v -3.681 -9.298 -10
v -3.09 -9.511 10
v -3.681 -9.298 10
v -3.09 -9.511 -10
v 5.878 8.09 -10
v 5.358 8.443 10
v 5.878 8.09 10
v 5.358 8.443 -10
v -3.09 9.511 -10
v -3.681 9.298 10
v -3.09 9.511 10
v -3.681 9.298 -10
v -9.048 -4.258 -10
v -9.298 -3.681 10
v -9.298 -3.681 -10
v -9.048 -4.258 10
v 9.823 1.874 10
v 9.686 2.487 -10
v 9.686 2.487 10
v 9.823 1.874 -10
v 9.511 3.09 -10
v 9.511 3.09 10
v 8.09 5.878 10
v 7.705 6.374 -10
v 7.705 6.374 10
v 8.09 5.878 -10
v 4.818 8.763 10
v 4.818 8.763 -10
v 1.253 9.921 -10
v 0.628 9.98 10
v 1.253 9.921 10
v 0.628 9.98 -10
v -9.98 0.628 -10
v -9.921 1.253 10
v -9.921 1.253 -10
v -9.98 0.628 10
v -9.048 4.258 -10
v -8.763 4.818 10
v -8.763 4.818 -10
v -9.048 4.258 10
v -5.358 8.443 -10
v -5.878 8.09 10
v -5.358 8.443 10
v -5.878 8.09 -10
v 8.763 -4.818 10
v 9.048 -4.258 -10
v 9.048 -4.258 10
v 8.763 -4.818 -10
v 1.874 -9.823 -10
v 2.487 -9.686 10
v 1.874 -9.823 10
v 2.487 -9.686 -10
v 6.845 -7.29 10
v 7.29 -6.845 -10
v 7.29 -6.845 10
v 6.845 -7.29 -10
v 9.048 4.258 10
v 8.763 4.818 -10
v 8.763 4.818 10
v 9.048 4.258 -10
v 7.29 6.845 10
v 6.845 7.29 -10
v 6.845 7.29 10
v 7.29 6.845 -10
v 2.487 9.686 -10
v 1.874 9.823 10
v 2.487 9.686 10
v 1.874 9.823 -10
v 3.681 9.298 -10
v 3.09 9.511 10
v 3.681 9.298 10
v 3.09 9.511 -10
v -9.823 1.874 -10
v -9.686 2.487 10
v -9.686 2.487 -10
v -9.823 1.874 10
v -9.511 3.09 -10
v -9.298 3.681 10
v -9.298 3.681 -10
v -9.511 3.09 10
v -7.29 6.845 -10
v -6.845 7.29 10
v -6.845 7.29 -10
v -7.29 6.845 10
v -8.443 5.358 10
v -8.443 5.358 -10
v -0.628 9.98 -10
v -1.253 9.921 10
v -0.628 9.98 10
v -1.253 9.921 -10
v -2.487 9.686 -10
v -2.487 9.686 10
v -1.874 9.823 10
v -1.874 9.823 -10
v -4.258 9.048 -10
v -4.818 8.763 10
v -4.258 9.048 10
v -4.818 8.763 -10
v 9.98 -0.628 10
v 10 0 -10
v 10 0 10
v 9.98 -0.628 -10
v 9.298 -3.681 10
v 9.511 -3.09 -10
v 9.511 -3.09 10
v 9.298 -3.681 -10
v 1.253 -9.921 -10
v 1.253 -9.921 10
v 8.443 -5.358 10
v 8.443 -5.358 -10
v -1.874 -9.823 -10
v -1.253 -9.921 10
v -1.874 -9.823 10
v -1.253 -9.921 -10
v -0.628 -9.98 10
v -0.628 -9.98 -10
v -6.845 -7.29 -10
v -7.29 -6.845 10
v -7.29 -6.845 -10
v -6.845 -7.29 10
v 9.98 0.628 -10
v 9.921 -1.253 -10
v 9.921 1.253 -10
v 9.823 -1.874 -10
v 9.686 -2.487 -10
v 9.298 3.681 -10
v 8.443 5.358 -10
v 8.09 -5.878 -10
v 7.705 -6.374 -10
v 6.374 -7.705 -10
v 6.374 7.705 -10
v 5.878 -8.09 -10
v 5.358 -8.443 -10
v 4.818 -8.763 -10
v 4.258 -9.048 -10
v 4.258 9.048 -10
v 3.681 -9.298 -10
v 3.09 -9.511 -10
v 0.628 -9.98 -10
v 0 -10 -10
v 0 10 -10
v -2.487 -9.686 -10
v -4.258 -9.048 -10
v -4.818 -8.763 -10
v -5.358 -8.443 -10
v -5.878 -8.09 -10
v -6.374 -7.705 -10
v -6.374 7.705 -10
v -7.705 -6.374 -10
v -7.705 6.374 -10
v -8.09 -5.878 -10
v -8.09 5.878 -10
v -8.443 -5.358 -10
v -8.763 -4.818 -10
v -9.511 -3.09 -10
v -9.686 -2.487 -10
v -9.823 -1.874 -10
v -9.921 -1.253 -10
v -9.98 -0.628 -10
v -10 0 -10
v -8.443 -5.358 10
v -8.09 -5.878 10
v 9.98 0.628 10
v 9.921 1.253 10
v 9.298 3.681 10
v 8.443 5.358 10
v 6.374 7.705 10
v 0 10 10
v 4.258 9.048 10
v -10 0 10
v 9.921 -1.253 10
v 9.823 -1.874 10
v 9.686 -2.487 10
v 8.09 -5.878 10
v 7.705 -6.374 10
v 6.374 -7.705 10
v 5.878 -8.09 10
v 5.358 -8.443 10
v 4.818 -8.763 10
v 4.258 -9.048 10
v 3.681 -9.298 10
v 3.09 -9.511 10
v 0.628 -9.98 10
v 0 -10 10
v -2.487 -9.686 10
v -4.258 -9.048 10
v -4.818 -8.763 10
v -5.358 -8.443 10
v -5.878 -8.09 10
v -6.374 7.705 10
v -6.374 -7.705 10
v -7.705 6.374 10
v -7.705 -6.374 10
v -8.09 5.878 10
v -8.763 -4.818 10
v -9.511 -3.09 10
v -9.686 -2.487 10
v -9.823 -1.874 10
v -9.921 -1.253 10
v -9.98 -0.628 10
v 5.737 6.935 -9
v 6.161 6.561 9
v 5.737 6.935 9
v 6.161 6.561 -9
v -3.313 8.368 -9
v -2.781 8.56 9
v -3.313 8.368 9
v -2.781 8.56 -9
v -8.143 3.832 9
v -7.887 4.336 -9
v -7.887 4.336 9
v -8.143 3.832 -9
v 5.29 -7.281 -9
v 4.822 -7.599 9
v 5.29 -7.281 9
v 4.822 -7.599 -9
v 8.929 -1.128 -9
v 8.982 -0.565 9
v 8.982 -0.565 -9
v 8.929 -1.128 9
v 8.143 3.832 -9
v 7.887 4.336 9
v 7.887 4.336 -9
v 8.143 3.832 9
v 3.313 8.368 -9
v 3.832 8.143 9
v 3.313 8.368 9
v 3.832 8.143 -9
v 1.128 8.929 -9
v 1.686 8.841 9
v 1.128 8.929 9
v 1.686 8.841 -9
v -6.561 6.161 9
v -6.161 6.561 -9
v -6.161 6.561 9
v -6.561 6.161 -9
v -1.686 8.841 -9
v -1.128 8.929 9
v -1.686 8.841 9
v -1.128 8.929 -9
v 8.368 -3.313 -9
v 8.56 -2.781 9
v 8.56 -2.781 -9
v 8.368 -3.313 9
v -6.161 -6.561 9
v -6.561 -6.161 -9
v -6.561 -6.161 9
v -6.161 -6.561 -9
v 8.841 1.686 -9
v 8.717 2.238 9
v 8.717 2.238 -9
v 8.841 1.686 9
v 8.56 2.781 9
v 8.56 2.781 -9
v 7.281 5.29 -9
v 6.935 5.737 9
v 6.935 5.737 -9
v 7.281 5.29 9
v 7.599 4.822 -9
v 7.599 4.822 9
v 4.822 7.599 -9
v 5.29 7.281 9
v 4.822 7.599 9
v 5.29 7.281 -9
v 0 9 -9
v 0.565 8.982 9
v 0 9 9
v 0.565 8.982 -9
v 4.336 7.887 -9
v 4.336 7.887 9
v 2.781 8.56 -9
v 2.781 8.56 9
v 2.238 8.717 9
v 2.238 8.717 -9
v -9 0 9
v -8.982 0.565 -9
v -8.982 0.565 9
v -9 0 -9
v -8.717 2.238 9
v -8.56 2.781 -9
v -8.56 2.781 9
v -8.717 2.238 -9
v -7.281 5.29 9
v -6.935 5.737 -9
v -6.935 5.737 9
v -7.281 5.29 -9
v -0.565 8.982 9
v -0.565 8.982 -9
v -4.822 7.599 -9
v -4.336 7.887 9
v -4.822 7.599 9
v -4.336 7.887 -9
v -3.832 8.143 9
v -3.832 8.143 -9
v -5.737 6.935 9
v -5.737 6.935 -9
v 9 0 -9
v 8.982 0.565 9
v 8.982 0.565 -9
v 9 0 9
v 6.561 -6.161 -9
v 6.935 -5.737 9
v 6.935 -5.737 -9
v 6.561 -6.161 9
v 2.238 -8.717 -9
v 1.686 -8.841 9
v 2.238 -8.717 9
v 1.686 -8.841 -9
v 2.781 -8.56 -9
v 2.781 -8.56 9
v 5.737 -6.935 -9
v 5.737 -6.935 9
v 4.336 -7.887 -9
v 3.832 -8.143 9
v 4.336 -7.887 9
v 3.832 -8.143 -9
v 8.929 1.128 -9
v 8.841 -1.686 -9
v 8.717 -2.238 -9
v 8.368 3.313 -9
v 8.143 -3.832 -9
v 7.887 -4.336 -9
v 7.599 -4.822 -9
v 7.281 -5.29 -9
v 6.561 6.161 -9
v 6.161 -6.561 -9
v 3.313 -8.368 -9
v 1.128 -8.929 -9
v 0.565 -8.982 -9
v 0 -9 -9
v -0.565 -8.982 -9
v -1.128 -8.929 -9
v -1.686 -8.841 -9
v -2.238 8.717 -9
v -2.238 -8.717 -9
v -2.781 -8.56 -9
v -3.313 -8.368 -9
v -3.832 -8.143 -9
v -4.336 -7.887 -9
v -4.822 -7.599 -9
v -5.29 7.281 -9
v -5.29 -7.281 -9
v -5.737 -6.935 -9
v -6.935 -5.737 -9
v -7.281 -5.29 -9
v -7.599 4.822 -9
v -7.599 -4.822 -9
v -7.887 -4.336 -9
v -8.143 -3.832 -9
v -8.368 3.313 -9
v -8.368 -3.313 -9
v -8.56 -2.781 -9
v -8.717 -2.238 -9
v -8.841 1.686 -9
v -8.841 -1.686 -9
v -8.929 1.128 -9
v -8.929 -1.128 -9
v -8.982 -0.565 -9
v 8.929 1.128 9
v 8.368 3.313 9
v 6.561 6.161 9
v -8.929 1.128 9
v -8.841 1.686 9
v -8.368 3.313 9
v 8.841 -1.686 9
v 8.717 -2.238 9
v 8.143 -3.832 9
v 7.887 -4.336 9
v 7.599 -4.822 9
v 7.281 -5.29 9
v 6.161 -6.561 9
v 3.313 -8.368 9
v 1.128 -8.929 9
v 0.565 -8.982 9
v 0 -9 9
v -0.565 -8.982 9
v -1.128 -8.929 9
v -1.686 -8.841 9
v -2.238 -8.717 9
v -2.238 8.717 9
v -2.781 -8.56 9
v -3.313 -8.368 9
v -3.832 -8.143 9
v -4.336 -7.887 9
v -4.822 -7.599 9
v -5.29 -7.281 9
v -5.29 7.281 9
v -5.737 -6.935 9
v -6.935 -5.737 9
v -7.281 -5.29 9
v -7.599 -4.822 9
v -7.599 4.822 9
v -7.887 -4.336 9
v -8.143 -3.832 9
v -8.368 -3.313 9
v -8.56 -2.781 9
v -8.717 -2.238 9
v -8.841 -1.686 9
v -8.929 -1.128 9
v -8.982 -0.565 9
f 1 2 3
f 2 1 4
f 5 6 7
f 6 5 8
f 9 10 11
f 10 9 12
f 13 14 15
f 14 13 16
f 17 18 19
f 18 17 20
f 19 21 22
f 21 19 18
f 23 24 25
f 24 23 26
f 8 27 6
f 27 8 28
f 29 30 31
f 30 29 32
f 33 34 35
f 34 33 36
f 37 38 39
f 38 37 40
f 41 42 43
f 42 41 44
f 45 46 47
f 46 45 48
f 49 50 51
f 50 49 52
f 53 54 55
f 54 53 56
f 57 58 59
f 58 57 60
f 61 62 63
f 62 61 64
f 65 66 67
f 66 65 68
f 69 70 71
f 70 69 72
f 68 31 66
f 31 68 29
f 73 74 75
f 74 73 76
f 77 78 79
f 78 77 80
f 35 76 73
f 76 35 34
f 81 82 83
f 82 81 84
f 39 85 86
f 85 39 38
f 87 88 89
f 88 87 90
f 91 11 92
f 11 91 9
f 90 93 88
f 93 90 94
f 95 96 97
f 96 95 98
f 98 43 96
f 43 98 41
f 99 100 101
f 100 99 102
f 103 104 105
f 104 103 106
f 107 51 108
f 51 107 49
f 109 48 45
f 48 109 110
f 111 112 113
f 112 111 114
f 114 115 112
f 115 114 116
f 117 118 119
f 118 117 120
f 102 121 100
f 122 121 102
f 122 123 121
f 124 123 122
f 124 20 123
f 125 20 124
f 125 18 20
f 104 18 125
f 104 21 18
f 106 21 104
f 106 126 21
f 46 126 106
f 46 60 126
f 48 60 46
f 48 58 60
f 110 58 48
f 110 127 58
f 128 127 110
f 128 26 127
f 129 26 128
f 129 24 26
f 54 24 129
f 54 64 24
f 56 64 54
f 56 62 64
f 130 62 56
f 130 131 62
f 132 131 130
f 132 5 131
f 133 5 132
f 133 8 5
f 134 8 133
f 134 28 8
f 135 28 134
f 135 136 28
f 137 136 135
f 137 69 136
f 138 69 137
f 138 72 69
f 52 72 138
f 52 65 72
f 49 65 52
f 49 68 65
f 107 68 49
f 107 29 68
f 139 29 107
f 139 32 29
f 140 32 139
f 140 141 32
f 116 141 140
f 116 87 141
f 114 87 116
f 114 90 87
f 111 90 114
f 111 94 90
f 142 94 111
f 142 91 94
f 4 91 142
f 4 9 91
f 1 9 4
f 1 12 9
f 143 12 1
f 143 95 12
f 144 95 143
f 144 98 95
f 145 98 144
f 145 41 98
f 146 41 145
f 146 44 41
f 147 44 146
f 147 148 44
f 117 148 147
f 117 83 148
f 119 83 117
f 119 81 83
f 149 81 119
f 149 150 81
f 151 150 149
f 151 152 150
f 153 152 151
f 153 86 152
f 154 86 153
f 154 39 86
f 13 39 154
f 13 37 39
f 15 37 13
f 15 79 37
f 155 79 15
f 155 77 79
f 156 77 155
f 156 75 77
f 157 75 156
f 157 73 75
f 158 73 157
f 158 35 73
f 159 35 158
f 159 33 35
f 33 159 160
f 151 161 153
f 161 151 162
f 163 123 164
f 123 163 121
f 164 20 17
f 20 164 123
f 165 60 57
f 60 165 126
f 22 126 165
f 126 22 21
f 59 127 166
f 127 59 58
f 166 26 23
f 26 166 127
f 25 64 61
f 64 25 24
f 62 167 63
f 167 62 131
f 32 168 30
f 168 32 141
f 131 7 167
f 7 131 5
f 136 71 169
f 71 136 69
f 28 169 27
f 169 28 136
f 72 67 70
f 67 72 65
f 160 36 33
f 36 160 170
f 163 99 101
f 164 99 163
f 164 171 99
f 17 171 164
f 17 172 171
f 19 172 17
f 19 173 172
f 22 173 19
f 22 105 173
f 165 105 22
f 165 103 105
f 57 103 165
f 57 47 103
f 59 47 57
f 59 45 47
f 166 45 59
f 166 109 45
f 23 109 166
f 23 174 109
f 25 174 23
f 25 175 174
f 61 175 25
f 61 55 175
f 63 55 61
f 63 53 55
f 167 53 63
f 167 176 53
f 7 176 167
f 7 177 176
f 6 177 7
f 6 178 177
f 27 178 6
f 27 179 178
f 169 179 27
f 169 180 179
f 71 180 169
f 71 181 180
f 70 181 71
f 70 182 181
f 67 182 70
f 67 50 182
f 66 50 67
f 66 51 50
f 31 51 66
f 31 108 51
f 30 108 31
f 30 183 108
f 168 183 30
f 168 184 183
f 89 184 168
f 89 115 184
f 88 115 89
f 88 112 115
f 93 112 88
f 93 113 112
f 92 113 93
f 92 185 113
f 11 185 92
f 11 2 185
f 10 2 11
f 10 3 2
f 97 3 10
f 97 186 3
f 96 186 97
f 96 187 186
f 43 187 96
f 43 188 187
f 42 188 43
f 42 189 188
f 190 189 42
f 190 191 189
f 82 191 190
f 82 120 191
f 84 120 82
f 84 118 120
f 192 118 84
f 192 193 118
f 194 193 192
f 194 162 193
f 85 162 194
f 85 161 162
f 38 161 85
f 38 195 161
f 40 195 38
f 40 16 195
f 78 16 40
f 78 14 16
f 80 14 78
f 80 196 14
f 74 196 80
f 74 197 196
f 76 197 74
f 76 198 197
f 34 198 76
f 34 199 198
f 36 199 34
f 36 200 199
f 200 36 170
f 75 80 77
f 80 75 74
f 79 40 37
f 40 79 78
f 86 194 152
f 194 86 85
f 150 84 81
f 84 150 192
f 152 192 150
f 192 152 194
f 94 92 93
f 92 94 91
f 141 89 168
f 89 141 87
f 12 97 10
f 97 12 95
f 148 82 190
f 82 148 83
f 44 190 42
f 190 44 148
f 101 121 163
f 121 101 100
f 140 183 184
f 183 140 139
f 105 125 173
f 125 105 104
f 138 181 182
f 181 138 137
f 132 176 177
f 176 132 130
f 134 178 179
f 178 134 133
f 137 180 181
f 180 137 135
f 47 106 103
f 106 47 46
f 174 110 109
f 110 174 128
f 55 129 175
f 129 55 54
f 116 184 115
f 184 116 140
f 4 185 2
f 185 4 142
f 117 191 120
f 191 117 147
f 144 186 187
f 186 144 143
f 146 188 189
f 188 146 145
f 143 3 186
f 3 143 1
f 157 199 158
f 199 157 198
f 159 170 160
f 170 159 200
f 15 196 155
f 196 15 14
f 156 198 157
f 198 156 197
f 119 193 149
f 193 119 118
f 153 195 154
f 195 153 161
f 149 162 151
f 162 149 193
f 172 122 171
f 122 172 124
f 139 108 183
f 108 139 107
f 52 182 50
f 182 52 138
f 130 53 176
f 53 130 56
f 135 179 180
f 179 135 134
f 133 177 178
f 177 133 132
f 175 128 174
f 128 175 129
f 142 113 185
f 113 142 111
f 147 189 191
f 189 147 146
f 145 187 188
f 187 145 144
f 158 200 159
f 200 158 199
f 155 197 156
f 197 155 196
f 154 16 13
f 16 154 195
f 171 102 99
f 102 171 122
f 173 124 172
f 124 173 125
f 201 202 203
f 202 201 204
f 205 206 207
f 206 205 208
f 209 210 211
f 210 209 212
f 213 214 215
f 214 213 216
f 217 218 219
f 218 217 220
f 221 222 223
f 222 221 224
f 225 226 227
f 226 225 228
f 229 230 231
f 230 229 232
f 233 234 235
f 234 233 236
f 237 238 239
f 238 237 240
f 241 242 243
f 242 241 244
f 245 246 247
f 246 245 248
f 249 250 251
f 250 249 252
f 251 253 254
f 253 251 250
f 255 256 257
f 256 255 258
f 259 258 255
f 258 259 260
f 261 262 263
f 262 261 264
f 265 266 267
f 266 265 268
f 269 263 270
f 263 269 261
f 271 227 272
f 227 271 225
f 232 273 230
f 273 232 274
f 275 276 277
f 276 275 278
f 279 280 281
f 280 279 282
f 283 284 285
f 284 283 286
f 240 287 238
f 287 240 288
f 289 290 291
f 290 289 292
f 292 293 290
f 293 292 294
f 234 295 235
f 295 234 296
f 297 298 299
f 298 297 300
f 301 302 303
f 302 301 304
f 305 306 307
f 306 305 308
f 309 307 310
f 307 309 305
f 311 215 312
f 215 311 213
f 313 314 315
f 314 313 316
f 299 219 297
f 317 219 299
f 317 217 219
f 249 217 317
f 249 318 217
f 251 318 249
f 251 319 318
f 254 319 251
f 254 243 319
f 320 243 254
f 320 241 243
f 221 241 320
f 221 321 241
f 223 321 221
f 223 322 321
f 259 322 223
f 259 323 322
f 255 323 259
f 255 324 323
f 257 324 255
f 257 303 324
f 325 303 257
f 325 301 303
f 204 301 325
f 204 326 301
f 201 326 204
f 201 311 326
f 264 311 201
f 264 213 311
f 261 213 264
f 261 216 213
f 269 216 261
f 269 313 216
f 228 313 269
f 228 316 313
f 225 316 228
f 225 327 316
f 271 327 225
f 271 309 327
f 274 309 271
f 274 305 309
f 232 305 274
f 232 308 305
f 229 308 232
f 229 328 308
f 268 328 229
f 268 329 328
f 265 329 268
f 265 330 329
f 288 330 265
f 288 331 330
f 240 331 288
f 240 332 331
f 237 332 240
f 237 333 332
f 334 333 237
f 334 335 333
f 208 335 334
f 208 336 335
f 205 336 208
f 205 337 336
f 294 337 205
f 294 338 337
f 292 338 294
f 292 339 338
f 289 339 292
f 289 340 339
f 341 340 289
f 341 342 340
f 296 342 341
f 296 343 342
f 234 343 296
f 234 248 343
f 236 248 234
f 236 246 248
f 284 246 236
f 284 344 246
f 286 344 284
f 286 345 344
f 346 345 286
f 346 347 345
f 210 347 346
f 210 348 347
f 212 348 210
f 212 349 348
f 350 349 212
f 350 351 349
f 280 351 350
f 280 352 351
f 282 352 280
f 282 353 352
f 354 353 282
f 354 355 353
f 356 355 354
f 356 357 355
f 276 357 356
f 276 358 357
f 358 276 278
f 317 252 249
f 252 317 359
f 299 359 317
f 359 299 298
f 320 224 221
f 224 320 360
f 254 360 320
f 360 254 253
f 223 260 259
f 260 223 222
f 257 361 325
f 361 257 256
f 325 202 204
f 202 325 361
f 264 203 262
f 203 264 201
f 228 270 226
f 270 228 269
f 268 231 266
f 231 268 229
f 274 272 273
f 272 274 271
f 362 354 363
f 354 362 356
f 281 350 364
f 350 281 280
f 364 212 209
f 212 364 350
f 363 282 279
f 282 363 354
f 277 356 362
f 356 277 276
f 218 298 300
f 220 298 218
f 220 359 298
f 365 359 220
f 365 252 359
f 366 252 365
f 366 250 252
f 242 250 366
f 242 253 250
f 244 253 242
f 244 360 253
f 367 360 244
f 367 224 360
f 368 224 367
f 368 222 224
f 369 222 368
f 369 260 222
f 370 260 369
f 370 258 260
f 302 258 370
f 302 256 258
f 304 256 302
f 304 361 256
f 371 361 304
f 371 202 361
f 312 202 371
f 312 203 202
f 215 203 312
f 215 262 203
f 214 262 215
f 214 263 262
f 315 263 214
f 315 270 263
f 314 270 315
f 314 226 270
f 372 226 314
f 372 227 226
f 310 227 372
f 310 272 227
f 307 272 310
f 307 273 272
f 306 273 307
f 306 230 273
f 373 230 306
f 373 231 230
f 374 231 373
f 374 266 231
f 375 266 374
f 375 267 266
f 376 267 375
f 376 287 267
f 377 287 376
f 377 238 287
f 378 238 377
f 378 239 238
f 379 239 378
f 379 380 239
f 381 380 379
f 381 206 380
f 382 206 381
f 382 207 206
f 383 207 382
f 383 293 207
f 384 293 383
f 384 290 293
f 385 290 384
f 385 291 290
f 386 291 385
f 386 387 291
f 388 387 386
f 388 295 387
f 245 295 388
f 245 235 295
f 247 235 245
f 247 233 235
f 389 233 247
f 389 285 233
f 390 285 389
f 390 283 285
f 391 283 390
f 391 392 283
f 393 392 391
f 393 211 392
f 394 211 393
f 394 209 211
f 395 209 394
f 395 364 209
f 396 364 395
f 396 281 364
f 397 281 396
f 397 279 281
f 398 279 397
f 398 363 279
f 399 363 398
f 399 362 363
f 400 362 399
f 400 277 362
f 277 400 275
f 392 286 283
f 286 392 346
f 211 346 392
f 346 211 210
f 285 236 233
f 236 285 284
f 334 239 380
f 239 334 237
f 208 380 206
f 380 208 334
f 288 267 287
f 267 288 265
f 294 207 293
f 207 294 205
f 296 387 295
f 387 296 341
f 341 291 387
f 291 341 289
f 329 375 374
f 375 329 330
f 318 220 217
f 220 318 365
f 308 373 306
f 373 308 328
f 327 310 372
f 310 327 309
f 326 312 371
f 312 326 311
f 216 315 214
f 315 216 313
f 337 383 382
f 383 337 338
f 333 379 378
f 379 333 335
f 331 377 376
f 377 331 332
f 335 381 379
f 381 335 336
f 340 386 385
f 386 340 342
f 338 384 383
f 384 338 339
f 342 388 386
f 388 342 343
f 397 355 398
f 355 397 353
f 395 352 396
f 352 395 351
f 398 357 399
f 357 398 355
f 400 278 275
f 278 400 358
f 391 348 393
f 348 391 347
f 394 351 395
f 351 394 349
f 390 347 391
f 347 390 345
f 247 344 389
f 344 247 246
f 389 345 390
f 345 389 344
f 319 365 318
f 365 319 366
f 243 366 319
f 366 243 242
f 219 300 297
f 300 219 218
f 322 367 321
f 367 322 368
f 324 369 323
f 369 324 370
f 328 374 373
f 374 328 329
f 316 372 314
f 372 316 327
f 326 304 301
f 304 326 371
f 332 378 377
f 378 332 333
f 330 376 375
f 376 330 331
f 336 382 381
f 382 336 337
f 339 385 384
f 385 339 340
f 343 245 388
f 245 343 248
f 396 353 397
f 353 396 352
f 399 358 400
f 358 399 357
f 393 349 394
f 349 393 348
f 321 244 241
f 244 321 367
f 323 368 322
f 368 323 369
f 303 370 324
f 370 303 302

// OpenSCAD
$fn=100;
difference(){
    cylinder(20, d=20, [0,0,0], center=true);
    cylinder(18, d=18, [0,0,0], center=true);
}
